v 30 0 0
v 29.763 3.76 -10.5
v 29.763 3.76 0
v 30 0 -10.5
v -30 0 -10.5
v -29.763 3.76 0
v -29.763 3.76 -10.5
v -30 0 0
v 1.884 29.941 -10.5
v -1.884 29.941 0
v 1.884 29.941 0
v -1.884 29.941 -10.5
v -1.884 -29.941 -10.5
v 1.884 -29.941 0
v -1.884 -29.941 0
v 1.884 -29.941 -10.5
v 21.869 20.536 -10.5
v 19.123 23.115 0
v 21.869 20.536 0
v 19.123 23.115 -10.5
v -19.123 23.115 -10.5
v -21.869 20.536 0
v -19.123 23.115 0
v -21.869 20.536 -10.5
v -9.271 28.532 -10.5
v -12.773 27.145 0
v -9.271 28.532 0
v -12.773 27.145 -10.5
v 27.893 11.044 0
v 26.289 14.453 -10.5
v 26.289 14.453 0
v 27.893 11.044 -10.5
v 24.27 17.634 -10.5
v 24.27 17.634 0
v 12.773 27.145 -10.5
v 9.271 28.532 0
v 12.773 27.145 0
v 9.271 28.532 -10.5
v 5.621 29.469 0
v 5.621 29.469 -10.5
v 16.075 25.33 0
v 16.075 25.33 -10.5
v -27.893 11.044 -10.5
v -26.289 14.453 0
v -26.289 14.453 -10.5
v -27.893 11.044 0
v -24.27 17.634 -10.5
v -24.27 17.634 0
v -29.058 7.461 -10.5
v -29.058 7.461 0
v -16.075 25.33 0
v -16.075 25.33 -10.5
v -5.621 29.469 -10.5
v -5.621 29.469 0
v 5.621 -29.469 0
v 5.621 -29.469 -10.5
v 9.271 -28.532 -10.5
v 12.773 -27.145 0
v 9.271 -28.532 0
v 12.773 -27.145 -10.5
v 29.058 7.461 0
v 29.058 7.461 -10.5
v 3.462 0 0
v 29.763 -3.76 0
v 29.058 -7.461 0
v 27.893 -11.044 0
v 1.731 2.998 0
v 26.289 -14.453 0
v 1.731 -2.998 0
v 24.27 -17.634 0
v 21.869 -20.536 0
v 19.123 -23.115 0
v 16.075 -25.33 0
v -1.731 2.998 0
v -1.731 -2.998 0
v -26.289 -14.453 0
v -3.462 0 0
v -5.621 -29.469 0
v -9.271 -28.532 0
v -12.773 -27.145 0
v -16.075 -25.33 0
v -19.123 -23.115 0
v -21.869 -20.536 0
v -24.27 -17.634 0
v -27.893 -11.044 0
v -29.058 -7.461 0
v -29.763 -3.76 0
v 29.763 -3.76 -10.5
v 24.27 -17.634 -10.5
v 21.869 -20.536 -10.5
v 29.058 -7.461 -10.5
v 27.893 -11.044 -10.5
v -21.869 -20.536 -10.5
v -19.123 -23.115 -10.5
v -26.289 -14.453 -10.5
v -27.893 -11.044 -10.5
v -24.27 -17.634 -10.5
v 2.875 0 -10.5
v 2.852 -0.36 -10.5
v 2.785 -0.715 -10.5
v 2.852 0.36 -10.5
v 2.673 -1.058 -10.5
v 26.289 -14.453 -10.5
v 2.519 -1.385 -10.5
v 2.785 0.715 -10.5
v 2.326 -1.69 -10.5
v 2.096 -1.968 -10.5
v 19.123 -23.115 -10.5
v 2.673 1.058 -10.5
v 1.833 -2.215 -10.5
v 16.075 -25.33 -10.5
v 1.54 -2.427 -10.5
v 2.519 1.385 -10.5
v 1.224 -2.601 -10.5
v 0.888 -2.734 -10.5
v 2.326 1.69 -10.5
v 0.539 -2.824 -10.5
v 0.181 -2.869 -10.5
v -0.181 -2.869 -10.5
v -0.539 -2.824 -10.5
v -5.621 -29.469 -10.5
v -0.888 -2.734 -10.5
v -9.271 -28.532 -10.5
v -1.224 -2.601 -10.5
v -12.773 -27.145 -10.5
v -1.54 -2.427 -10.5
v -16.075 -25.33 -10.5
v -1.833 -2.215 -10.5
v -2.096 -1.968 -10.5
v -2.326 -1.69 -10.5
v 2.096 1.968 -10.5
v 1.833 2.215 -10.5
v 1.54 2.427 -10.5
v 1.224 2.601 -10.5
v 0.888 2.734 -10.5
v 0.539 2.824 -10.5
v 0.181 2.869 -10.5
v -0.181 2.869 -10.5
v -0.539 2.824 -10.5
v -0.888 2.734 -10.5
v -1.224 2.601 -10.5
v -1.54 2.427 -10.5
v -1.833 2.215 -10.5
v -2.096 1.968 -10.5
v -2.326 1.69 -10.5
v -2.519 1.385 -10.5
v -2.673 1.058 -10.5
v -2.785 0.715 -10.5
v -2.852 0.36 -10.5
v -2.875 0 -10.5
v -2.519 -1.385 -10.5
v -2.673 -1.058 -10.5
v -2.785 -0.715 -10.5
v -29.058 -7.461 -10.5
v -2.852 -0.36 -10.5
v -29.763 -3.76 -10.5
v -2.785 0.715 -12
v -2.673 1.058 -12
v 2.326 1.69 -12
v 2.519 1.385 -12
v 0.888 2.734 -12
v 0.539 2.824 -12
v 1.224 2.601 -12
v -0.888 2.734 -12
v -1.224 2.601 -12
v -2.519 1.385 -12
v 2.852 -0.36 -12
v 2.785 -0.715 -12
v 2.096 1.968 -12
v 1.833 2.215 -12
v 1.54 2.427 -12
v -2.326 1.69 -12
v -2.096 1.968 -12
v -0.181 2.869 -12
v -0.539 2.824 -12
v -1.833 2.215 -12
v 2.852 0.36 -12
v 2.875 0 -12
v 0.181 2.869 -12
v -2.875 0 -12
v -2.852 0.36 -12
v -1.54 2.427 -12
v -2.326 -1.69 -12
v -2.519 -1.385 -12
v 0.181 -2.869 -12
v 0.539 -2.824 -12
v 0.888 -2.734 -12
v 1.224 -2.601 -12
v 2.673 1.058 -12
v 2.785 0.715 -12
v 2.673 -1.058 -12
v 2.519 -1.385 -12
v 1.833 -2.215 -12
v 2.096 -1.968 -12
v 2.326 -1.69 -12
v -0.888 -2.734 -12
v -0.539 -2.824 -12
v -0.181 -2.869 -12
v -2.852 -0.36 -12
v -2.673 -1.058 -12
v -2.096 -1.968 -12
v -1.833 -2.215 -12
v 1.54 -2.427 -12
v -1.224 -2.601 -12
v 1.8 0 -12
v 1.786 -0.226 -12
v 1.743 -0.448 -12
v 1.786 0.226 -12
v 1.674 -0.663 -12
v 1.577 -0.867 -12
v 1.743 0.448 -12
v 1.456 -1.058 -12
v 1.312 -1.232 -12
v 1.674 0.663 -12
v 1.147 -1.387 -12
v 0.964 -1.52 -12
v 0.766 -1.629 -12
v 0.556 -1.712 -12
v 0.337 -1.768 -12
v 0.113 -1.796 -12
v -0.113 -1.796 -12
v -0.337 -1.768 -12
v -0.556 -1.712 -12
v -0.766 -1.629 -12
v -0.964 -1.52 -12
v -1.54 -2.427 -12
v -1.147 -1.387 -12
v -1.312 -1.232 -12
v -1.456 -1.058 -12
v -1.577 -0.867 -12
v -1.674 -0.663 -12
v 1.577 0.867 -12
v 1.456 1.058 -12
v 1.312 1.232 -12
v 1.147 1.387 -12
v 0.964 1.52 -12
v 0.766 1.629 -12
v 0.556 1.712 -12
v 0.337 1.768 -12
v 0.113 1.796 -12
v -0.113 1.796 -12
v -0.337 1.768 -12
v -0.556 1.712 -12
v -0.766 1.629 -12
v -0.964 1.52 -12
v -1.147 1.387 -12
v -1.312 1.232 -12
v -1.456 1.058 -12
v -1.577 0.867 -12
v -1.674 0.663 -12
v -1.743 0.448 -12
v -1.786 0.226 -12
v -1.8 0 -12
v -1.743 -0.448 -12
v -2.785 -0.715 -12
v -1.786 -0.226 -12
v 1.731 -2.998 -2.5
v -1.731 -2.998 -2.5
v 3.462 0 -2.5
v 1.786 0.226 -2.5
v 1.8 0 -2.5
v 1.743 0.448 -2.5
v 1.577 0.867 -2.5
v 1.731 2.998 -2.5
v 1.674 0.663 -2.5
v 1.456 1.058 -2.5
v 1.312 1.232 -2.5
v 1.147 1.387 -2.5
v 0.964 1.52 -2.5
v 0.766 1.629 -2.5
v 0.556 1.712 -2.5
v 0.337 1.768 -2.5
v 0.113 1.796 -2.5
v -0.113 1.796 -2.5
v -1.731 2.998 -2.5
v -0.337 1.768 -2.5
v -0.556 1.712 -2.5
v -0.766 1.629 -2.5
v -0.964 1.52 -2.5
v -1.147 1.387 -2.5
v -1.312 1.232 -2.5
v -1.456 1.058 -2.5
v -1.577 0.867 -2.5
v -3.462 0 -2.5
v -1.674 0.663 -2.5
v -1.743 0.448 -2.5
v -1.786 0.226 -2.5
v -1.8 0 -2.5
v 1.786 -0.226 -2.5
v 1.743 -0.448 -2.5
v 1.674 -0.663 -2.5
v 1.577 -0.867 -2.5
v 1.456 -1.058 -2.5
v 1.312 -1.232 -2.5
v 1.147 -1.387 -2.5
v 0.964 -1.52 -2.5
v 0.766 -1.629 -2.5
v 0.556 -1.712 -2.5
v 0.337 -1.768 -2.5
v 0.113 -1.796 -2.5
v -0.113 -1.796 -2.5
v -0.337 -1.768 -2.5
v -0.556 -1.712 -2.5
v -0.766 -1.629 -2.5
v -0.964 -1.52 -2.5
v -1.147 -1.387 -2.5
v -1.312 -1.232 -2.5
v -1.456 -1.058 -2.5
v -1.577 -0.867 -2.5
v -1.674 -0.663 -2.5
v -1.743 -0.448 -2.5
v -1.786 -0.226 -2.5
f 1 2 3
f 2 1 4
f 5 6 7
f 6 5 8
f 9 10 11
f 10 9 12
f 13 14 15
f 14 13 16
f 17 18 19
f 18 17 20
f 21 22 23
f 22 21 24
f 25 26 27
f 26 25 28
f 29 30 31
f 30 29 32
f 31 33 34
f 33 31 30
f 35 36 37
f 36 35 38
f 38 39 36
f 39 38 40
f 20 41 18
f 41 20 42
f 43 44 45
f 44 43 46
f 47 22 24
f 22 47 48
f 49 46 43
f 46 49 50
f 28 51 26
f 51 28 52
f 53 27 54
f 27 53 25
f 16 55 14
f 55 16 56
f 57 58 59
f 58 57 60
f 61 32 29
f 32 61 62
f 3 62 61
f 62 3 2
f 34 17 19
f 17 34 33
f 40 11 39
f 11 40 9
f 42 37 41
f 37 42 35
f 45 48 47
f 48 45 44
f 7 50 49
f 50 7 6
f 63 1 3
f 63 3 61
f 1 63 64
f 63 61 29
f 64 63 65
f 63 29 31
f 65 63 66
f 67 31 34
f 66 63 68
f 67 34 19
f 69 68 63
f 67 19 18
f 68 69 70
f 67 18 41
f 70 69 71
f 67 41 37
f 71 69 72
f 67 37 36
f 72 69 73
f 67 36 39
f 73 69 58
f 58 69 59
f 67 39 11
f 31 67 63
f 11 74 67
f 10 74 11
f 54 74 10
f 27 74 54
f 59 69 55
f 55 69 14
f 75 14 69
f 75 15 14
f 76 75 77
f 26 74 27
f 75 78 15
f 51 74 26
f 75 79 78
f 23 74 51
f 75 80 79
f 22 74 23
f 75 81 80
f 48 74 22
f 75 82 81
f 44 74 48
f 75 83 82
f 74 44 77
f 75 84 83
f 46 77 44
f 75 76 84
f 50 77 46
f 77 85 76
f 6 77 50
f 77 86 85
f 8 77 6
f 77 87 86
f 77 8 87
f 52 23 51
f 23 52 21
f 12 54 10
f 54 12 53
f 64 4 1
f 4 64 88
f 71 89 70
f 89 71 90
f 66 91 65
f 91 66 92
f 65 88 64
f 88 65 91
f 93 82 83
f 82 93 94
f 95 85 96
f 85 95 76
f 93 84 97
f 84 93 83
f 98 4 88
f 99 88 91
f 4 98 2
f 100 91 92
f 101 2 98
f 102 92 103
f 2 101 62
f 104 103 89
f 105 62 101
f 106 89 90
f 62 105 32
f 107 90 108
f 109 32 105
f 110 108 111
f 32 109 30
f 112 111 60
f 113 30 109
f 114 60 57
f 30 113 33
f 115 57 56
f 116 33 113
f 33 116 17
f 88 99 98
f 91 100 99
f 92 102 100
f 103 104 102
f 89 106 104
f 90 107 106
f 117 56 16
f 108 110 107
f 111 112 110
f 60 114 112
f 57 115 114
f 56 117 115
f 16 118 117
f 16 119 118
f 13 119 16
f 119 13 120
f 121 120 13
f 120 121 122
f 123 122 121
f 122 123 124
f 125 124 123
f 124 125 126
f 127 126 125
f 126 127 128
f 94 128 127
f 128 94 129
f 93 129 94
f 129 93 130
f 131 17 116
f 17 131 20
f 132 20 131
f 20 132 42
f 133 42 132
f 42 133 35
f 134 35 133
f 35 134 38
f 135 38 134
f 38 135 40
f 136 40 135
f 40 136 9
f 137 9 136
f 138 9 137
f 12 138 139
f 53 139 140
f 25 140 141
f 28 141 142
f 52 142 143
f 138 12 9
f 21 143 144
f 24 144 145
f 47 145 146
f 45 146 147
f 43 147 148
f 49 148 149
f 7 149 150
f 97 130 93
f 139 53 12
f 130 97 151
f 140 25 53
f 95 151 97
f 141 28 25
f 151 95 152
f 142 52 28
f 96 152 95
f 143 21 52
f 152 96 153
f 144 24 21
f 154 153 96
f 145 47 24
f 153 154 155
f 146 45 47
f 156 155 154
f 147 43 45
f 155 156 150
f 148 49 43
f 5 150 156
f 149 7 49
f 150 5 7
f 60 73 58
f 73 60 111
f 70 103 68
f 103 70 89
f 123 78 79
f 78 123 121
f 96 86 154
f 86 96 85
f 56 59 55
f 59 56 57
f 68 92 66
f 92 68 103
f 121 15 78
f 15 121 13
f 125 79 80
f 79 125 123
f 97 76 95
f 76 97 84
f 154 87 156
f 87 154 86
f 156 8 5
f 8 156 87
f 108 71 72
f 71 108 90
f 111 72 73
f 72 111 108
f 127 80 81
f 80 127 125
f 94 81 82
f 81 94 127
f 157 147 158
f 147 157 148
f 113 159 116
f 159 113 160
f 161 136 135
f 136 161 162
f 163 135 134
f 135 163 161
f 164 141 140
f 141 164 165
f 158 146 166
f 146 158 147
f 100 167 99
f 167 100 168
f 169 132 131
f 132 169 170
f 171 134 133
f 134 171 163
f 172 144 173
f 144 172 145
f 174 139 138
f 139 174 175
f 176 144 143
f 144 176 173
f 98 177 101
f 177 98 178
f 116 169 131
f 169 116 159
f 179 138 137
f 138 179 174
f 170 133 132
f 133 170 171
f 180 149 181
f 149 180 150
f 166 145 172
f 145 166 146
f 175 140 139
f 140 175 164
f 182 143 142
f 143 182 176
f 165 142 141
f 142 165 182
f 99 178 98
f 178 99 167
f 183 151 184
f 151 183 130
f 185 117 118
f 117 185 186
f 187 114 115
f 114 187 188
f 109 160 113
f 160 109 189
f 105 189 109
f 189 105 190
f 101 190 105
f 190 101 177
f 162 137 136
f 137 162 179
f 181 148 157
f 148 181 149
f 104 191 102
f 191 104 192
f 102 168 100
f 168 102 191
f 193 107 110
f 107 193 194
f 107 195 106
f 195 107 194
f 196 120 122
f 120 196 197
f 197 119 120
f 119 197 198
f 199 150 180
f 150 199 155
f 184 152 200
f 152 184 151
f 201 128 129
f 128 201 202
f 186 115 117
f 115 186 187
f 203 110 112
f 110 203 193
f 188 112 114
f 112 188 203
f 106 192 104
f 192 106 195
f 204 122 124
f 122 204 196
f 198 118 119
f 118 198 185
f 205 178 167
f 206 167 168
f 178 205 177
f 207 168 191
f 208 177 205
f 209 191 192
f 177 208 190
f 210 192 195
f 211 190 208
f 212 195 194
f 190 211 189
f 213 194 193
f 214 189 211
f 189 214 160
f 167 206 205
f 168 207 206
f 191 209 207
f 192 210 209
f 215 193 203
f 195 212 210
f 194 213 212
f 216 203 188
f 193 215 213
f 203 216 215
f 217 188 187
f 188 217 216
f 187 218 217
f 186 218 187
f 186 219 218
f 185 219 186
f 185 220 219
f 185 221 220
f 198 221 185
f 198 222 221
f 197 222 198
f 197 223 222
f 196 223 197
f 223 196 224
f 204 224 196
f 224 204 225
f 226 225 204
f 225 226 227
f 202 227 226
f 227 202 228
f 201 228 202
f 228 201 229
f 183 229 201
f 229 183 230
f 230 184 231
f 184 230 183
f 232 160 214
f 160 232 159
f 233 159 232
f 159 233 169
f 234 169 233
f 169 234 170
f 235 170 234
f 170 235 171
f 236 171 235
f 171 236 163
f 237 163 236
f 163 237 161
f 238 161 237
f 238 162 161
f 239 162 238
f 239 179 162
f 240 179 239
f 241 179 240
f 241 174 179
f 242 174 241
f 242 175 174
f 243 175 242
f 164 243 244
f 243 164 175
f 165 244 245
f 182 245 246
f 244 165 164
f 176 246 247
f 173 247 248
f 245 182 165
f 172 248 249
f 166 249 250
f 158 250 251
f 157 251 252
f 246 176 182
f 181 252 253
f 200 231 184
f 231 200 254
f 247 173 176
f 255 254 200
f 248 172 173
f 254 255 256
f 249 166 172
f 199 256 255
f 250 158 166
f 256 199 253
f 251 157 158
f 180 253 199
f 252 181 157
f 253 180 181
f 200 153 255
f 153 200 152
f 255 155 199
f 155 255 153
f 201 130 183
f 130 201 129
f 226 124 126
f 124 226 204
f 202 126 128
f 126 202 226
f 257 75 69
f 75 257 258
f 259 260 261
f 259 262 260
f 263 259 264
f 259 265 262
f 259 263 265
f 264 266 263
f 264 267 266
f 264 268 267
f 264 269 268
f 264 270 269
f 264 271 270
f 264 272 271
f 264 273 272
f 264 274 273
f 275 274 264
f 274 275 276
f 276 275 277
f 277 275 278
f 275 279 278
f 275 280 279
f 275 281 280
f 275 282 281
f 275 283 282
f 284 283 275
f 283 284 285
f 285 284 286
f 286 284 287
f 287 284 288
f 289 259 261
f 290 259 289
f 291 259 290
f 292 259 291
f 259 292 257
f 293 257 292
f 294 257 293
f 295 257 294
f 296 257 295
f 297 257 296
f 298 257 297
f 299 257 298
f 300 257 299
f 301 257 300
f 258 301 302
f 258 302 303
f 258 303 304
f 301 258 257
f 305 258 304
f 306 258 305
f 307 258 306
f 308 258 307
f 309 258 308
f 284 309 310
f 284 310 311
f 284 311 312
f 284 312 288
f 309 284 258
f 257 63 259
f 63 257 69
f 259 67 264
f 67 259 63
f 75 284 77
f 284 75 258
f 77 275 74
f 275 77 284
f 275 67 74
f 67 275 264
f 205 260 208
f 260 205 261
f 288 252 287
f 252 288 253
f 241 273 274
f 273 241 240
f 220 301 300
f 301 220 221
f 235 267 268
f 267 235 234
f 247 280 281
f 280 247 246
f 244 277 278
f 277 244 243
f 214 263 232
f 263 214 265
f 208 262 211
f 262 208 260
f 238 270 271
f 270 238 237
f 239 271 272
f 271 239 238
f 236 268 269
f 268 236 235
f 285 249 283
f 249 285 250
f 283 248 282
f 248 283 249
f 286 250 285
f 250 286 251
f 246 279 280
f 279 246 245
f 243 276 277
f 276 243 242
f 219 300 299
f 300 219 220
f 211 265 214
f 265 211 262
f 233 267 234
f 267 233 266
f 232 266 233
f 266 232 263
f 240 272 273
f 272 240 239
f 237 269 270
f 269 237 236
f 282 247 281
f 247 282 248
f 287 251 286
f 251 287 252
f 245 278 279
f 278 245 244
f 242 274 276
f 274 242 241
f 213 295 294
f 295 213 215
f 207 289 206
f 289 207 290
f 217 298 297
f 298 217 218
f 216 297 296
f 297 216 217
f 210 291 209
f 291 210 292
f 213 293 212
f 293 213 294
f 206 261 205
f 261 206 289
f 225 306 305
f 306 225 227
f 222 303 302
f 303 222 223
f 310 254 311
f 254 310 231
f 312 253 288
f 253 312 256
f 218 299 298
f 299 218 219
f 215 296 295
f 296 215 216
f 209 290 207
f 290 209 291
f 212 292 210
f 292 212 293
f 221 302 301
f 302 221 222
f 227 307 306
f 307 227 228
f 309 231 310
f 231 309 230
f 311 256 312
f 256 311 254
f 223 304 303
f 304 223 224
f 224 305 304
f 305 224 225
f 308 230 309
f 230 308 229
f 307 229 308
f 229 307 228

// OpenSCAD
$fn = 50;


difference() {
	union() {
		translate(v = [0, 0, -10.5000000000]) {
			cylinder(h = 10.5000000000, r = 30.0000000000);
		}
		translate(v = [0, 0, -12.0000000000]) {
			cylinder(h = 12, r = 2.8750000000);
		}
	}
	union() {
		translate(v = [0, 0, 0]) {
			rotate(a = [0, 0, 0]) {
				difference() {
					union() {
						translate(v = [0, 0, -2.5000000000]) {
							linear_extrude(height = 2.5000000000) {
								polygon(points = [[3.4620000000, 0.0000000000], [1.7310000000, 2.9981799479], [-1.7310000000, 2.9981799479], [-3.4620000000, 0.0000000000], [-1.7310000000, -2.9981799479], [1.7310000000, -2.9981799479]]);
							}
						}
					}
					union();
				}
			}
		}
		#translate(v = [0, 0, -100.0000000000]) {
			cylinder(h = 200, r = 1.8000000000);
		}
	}
}
